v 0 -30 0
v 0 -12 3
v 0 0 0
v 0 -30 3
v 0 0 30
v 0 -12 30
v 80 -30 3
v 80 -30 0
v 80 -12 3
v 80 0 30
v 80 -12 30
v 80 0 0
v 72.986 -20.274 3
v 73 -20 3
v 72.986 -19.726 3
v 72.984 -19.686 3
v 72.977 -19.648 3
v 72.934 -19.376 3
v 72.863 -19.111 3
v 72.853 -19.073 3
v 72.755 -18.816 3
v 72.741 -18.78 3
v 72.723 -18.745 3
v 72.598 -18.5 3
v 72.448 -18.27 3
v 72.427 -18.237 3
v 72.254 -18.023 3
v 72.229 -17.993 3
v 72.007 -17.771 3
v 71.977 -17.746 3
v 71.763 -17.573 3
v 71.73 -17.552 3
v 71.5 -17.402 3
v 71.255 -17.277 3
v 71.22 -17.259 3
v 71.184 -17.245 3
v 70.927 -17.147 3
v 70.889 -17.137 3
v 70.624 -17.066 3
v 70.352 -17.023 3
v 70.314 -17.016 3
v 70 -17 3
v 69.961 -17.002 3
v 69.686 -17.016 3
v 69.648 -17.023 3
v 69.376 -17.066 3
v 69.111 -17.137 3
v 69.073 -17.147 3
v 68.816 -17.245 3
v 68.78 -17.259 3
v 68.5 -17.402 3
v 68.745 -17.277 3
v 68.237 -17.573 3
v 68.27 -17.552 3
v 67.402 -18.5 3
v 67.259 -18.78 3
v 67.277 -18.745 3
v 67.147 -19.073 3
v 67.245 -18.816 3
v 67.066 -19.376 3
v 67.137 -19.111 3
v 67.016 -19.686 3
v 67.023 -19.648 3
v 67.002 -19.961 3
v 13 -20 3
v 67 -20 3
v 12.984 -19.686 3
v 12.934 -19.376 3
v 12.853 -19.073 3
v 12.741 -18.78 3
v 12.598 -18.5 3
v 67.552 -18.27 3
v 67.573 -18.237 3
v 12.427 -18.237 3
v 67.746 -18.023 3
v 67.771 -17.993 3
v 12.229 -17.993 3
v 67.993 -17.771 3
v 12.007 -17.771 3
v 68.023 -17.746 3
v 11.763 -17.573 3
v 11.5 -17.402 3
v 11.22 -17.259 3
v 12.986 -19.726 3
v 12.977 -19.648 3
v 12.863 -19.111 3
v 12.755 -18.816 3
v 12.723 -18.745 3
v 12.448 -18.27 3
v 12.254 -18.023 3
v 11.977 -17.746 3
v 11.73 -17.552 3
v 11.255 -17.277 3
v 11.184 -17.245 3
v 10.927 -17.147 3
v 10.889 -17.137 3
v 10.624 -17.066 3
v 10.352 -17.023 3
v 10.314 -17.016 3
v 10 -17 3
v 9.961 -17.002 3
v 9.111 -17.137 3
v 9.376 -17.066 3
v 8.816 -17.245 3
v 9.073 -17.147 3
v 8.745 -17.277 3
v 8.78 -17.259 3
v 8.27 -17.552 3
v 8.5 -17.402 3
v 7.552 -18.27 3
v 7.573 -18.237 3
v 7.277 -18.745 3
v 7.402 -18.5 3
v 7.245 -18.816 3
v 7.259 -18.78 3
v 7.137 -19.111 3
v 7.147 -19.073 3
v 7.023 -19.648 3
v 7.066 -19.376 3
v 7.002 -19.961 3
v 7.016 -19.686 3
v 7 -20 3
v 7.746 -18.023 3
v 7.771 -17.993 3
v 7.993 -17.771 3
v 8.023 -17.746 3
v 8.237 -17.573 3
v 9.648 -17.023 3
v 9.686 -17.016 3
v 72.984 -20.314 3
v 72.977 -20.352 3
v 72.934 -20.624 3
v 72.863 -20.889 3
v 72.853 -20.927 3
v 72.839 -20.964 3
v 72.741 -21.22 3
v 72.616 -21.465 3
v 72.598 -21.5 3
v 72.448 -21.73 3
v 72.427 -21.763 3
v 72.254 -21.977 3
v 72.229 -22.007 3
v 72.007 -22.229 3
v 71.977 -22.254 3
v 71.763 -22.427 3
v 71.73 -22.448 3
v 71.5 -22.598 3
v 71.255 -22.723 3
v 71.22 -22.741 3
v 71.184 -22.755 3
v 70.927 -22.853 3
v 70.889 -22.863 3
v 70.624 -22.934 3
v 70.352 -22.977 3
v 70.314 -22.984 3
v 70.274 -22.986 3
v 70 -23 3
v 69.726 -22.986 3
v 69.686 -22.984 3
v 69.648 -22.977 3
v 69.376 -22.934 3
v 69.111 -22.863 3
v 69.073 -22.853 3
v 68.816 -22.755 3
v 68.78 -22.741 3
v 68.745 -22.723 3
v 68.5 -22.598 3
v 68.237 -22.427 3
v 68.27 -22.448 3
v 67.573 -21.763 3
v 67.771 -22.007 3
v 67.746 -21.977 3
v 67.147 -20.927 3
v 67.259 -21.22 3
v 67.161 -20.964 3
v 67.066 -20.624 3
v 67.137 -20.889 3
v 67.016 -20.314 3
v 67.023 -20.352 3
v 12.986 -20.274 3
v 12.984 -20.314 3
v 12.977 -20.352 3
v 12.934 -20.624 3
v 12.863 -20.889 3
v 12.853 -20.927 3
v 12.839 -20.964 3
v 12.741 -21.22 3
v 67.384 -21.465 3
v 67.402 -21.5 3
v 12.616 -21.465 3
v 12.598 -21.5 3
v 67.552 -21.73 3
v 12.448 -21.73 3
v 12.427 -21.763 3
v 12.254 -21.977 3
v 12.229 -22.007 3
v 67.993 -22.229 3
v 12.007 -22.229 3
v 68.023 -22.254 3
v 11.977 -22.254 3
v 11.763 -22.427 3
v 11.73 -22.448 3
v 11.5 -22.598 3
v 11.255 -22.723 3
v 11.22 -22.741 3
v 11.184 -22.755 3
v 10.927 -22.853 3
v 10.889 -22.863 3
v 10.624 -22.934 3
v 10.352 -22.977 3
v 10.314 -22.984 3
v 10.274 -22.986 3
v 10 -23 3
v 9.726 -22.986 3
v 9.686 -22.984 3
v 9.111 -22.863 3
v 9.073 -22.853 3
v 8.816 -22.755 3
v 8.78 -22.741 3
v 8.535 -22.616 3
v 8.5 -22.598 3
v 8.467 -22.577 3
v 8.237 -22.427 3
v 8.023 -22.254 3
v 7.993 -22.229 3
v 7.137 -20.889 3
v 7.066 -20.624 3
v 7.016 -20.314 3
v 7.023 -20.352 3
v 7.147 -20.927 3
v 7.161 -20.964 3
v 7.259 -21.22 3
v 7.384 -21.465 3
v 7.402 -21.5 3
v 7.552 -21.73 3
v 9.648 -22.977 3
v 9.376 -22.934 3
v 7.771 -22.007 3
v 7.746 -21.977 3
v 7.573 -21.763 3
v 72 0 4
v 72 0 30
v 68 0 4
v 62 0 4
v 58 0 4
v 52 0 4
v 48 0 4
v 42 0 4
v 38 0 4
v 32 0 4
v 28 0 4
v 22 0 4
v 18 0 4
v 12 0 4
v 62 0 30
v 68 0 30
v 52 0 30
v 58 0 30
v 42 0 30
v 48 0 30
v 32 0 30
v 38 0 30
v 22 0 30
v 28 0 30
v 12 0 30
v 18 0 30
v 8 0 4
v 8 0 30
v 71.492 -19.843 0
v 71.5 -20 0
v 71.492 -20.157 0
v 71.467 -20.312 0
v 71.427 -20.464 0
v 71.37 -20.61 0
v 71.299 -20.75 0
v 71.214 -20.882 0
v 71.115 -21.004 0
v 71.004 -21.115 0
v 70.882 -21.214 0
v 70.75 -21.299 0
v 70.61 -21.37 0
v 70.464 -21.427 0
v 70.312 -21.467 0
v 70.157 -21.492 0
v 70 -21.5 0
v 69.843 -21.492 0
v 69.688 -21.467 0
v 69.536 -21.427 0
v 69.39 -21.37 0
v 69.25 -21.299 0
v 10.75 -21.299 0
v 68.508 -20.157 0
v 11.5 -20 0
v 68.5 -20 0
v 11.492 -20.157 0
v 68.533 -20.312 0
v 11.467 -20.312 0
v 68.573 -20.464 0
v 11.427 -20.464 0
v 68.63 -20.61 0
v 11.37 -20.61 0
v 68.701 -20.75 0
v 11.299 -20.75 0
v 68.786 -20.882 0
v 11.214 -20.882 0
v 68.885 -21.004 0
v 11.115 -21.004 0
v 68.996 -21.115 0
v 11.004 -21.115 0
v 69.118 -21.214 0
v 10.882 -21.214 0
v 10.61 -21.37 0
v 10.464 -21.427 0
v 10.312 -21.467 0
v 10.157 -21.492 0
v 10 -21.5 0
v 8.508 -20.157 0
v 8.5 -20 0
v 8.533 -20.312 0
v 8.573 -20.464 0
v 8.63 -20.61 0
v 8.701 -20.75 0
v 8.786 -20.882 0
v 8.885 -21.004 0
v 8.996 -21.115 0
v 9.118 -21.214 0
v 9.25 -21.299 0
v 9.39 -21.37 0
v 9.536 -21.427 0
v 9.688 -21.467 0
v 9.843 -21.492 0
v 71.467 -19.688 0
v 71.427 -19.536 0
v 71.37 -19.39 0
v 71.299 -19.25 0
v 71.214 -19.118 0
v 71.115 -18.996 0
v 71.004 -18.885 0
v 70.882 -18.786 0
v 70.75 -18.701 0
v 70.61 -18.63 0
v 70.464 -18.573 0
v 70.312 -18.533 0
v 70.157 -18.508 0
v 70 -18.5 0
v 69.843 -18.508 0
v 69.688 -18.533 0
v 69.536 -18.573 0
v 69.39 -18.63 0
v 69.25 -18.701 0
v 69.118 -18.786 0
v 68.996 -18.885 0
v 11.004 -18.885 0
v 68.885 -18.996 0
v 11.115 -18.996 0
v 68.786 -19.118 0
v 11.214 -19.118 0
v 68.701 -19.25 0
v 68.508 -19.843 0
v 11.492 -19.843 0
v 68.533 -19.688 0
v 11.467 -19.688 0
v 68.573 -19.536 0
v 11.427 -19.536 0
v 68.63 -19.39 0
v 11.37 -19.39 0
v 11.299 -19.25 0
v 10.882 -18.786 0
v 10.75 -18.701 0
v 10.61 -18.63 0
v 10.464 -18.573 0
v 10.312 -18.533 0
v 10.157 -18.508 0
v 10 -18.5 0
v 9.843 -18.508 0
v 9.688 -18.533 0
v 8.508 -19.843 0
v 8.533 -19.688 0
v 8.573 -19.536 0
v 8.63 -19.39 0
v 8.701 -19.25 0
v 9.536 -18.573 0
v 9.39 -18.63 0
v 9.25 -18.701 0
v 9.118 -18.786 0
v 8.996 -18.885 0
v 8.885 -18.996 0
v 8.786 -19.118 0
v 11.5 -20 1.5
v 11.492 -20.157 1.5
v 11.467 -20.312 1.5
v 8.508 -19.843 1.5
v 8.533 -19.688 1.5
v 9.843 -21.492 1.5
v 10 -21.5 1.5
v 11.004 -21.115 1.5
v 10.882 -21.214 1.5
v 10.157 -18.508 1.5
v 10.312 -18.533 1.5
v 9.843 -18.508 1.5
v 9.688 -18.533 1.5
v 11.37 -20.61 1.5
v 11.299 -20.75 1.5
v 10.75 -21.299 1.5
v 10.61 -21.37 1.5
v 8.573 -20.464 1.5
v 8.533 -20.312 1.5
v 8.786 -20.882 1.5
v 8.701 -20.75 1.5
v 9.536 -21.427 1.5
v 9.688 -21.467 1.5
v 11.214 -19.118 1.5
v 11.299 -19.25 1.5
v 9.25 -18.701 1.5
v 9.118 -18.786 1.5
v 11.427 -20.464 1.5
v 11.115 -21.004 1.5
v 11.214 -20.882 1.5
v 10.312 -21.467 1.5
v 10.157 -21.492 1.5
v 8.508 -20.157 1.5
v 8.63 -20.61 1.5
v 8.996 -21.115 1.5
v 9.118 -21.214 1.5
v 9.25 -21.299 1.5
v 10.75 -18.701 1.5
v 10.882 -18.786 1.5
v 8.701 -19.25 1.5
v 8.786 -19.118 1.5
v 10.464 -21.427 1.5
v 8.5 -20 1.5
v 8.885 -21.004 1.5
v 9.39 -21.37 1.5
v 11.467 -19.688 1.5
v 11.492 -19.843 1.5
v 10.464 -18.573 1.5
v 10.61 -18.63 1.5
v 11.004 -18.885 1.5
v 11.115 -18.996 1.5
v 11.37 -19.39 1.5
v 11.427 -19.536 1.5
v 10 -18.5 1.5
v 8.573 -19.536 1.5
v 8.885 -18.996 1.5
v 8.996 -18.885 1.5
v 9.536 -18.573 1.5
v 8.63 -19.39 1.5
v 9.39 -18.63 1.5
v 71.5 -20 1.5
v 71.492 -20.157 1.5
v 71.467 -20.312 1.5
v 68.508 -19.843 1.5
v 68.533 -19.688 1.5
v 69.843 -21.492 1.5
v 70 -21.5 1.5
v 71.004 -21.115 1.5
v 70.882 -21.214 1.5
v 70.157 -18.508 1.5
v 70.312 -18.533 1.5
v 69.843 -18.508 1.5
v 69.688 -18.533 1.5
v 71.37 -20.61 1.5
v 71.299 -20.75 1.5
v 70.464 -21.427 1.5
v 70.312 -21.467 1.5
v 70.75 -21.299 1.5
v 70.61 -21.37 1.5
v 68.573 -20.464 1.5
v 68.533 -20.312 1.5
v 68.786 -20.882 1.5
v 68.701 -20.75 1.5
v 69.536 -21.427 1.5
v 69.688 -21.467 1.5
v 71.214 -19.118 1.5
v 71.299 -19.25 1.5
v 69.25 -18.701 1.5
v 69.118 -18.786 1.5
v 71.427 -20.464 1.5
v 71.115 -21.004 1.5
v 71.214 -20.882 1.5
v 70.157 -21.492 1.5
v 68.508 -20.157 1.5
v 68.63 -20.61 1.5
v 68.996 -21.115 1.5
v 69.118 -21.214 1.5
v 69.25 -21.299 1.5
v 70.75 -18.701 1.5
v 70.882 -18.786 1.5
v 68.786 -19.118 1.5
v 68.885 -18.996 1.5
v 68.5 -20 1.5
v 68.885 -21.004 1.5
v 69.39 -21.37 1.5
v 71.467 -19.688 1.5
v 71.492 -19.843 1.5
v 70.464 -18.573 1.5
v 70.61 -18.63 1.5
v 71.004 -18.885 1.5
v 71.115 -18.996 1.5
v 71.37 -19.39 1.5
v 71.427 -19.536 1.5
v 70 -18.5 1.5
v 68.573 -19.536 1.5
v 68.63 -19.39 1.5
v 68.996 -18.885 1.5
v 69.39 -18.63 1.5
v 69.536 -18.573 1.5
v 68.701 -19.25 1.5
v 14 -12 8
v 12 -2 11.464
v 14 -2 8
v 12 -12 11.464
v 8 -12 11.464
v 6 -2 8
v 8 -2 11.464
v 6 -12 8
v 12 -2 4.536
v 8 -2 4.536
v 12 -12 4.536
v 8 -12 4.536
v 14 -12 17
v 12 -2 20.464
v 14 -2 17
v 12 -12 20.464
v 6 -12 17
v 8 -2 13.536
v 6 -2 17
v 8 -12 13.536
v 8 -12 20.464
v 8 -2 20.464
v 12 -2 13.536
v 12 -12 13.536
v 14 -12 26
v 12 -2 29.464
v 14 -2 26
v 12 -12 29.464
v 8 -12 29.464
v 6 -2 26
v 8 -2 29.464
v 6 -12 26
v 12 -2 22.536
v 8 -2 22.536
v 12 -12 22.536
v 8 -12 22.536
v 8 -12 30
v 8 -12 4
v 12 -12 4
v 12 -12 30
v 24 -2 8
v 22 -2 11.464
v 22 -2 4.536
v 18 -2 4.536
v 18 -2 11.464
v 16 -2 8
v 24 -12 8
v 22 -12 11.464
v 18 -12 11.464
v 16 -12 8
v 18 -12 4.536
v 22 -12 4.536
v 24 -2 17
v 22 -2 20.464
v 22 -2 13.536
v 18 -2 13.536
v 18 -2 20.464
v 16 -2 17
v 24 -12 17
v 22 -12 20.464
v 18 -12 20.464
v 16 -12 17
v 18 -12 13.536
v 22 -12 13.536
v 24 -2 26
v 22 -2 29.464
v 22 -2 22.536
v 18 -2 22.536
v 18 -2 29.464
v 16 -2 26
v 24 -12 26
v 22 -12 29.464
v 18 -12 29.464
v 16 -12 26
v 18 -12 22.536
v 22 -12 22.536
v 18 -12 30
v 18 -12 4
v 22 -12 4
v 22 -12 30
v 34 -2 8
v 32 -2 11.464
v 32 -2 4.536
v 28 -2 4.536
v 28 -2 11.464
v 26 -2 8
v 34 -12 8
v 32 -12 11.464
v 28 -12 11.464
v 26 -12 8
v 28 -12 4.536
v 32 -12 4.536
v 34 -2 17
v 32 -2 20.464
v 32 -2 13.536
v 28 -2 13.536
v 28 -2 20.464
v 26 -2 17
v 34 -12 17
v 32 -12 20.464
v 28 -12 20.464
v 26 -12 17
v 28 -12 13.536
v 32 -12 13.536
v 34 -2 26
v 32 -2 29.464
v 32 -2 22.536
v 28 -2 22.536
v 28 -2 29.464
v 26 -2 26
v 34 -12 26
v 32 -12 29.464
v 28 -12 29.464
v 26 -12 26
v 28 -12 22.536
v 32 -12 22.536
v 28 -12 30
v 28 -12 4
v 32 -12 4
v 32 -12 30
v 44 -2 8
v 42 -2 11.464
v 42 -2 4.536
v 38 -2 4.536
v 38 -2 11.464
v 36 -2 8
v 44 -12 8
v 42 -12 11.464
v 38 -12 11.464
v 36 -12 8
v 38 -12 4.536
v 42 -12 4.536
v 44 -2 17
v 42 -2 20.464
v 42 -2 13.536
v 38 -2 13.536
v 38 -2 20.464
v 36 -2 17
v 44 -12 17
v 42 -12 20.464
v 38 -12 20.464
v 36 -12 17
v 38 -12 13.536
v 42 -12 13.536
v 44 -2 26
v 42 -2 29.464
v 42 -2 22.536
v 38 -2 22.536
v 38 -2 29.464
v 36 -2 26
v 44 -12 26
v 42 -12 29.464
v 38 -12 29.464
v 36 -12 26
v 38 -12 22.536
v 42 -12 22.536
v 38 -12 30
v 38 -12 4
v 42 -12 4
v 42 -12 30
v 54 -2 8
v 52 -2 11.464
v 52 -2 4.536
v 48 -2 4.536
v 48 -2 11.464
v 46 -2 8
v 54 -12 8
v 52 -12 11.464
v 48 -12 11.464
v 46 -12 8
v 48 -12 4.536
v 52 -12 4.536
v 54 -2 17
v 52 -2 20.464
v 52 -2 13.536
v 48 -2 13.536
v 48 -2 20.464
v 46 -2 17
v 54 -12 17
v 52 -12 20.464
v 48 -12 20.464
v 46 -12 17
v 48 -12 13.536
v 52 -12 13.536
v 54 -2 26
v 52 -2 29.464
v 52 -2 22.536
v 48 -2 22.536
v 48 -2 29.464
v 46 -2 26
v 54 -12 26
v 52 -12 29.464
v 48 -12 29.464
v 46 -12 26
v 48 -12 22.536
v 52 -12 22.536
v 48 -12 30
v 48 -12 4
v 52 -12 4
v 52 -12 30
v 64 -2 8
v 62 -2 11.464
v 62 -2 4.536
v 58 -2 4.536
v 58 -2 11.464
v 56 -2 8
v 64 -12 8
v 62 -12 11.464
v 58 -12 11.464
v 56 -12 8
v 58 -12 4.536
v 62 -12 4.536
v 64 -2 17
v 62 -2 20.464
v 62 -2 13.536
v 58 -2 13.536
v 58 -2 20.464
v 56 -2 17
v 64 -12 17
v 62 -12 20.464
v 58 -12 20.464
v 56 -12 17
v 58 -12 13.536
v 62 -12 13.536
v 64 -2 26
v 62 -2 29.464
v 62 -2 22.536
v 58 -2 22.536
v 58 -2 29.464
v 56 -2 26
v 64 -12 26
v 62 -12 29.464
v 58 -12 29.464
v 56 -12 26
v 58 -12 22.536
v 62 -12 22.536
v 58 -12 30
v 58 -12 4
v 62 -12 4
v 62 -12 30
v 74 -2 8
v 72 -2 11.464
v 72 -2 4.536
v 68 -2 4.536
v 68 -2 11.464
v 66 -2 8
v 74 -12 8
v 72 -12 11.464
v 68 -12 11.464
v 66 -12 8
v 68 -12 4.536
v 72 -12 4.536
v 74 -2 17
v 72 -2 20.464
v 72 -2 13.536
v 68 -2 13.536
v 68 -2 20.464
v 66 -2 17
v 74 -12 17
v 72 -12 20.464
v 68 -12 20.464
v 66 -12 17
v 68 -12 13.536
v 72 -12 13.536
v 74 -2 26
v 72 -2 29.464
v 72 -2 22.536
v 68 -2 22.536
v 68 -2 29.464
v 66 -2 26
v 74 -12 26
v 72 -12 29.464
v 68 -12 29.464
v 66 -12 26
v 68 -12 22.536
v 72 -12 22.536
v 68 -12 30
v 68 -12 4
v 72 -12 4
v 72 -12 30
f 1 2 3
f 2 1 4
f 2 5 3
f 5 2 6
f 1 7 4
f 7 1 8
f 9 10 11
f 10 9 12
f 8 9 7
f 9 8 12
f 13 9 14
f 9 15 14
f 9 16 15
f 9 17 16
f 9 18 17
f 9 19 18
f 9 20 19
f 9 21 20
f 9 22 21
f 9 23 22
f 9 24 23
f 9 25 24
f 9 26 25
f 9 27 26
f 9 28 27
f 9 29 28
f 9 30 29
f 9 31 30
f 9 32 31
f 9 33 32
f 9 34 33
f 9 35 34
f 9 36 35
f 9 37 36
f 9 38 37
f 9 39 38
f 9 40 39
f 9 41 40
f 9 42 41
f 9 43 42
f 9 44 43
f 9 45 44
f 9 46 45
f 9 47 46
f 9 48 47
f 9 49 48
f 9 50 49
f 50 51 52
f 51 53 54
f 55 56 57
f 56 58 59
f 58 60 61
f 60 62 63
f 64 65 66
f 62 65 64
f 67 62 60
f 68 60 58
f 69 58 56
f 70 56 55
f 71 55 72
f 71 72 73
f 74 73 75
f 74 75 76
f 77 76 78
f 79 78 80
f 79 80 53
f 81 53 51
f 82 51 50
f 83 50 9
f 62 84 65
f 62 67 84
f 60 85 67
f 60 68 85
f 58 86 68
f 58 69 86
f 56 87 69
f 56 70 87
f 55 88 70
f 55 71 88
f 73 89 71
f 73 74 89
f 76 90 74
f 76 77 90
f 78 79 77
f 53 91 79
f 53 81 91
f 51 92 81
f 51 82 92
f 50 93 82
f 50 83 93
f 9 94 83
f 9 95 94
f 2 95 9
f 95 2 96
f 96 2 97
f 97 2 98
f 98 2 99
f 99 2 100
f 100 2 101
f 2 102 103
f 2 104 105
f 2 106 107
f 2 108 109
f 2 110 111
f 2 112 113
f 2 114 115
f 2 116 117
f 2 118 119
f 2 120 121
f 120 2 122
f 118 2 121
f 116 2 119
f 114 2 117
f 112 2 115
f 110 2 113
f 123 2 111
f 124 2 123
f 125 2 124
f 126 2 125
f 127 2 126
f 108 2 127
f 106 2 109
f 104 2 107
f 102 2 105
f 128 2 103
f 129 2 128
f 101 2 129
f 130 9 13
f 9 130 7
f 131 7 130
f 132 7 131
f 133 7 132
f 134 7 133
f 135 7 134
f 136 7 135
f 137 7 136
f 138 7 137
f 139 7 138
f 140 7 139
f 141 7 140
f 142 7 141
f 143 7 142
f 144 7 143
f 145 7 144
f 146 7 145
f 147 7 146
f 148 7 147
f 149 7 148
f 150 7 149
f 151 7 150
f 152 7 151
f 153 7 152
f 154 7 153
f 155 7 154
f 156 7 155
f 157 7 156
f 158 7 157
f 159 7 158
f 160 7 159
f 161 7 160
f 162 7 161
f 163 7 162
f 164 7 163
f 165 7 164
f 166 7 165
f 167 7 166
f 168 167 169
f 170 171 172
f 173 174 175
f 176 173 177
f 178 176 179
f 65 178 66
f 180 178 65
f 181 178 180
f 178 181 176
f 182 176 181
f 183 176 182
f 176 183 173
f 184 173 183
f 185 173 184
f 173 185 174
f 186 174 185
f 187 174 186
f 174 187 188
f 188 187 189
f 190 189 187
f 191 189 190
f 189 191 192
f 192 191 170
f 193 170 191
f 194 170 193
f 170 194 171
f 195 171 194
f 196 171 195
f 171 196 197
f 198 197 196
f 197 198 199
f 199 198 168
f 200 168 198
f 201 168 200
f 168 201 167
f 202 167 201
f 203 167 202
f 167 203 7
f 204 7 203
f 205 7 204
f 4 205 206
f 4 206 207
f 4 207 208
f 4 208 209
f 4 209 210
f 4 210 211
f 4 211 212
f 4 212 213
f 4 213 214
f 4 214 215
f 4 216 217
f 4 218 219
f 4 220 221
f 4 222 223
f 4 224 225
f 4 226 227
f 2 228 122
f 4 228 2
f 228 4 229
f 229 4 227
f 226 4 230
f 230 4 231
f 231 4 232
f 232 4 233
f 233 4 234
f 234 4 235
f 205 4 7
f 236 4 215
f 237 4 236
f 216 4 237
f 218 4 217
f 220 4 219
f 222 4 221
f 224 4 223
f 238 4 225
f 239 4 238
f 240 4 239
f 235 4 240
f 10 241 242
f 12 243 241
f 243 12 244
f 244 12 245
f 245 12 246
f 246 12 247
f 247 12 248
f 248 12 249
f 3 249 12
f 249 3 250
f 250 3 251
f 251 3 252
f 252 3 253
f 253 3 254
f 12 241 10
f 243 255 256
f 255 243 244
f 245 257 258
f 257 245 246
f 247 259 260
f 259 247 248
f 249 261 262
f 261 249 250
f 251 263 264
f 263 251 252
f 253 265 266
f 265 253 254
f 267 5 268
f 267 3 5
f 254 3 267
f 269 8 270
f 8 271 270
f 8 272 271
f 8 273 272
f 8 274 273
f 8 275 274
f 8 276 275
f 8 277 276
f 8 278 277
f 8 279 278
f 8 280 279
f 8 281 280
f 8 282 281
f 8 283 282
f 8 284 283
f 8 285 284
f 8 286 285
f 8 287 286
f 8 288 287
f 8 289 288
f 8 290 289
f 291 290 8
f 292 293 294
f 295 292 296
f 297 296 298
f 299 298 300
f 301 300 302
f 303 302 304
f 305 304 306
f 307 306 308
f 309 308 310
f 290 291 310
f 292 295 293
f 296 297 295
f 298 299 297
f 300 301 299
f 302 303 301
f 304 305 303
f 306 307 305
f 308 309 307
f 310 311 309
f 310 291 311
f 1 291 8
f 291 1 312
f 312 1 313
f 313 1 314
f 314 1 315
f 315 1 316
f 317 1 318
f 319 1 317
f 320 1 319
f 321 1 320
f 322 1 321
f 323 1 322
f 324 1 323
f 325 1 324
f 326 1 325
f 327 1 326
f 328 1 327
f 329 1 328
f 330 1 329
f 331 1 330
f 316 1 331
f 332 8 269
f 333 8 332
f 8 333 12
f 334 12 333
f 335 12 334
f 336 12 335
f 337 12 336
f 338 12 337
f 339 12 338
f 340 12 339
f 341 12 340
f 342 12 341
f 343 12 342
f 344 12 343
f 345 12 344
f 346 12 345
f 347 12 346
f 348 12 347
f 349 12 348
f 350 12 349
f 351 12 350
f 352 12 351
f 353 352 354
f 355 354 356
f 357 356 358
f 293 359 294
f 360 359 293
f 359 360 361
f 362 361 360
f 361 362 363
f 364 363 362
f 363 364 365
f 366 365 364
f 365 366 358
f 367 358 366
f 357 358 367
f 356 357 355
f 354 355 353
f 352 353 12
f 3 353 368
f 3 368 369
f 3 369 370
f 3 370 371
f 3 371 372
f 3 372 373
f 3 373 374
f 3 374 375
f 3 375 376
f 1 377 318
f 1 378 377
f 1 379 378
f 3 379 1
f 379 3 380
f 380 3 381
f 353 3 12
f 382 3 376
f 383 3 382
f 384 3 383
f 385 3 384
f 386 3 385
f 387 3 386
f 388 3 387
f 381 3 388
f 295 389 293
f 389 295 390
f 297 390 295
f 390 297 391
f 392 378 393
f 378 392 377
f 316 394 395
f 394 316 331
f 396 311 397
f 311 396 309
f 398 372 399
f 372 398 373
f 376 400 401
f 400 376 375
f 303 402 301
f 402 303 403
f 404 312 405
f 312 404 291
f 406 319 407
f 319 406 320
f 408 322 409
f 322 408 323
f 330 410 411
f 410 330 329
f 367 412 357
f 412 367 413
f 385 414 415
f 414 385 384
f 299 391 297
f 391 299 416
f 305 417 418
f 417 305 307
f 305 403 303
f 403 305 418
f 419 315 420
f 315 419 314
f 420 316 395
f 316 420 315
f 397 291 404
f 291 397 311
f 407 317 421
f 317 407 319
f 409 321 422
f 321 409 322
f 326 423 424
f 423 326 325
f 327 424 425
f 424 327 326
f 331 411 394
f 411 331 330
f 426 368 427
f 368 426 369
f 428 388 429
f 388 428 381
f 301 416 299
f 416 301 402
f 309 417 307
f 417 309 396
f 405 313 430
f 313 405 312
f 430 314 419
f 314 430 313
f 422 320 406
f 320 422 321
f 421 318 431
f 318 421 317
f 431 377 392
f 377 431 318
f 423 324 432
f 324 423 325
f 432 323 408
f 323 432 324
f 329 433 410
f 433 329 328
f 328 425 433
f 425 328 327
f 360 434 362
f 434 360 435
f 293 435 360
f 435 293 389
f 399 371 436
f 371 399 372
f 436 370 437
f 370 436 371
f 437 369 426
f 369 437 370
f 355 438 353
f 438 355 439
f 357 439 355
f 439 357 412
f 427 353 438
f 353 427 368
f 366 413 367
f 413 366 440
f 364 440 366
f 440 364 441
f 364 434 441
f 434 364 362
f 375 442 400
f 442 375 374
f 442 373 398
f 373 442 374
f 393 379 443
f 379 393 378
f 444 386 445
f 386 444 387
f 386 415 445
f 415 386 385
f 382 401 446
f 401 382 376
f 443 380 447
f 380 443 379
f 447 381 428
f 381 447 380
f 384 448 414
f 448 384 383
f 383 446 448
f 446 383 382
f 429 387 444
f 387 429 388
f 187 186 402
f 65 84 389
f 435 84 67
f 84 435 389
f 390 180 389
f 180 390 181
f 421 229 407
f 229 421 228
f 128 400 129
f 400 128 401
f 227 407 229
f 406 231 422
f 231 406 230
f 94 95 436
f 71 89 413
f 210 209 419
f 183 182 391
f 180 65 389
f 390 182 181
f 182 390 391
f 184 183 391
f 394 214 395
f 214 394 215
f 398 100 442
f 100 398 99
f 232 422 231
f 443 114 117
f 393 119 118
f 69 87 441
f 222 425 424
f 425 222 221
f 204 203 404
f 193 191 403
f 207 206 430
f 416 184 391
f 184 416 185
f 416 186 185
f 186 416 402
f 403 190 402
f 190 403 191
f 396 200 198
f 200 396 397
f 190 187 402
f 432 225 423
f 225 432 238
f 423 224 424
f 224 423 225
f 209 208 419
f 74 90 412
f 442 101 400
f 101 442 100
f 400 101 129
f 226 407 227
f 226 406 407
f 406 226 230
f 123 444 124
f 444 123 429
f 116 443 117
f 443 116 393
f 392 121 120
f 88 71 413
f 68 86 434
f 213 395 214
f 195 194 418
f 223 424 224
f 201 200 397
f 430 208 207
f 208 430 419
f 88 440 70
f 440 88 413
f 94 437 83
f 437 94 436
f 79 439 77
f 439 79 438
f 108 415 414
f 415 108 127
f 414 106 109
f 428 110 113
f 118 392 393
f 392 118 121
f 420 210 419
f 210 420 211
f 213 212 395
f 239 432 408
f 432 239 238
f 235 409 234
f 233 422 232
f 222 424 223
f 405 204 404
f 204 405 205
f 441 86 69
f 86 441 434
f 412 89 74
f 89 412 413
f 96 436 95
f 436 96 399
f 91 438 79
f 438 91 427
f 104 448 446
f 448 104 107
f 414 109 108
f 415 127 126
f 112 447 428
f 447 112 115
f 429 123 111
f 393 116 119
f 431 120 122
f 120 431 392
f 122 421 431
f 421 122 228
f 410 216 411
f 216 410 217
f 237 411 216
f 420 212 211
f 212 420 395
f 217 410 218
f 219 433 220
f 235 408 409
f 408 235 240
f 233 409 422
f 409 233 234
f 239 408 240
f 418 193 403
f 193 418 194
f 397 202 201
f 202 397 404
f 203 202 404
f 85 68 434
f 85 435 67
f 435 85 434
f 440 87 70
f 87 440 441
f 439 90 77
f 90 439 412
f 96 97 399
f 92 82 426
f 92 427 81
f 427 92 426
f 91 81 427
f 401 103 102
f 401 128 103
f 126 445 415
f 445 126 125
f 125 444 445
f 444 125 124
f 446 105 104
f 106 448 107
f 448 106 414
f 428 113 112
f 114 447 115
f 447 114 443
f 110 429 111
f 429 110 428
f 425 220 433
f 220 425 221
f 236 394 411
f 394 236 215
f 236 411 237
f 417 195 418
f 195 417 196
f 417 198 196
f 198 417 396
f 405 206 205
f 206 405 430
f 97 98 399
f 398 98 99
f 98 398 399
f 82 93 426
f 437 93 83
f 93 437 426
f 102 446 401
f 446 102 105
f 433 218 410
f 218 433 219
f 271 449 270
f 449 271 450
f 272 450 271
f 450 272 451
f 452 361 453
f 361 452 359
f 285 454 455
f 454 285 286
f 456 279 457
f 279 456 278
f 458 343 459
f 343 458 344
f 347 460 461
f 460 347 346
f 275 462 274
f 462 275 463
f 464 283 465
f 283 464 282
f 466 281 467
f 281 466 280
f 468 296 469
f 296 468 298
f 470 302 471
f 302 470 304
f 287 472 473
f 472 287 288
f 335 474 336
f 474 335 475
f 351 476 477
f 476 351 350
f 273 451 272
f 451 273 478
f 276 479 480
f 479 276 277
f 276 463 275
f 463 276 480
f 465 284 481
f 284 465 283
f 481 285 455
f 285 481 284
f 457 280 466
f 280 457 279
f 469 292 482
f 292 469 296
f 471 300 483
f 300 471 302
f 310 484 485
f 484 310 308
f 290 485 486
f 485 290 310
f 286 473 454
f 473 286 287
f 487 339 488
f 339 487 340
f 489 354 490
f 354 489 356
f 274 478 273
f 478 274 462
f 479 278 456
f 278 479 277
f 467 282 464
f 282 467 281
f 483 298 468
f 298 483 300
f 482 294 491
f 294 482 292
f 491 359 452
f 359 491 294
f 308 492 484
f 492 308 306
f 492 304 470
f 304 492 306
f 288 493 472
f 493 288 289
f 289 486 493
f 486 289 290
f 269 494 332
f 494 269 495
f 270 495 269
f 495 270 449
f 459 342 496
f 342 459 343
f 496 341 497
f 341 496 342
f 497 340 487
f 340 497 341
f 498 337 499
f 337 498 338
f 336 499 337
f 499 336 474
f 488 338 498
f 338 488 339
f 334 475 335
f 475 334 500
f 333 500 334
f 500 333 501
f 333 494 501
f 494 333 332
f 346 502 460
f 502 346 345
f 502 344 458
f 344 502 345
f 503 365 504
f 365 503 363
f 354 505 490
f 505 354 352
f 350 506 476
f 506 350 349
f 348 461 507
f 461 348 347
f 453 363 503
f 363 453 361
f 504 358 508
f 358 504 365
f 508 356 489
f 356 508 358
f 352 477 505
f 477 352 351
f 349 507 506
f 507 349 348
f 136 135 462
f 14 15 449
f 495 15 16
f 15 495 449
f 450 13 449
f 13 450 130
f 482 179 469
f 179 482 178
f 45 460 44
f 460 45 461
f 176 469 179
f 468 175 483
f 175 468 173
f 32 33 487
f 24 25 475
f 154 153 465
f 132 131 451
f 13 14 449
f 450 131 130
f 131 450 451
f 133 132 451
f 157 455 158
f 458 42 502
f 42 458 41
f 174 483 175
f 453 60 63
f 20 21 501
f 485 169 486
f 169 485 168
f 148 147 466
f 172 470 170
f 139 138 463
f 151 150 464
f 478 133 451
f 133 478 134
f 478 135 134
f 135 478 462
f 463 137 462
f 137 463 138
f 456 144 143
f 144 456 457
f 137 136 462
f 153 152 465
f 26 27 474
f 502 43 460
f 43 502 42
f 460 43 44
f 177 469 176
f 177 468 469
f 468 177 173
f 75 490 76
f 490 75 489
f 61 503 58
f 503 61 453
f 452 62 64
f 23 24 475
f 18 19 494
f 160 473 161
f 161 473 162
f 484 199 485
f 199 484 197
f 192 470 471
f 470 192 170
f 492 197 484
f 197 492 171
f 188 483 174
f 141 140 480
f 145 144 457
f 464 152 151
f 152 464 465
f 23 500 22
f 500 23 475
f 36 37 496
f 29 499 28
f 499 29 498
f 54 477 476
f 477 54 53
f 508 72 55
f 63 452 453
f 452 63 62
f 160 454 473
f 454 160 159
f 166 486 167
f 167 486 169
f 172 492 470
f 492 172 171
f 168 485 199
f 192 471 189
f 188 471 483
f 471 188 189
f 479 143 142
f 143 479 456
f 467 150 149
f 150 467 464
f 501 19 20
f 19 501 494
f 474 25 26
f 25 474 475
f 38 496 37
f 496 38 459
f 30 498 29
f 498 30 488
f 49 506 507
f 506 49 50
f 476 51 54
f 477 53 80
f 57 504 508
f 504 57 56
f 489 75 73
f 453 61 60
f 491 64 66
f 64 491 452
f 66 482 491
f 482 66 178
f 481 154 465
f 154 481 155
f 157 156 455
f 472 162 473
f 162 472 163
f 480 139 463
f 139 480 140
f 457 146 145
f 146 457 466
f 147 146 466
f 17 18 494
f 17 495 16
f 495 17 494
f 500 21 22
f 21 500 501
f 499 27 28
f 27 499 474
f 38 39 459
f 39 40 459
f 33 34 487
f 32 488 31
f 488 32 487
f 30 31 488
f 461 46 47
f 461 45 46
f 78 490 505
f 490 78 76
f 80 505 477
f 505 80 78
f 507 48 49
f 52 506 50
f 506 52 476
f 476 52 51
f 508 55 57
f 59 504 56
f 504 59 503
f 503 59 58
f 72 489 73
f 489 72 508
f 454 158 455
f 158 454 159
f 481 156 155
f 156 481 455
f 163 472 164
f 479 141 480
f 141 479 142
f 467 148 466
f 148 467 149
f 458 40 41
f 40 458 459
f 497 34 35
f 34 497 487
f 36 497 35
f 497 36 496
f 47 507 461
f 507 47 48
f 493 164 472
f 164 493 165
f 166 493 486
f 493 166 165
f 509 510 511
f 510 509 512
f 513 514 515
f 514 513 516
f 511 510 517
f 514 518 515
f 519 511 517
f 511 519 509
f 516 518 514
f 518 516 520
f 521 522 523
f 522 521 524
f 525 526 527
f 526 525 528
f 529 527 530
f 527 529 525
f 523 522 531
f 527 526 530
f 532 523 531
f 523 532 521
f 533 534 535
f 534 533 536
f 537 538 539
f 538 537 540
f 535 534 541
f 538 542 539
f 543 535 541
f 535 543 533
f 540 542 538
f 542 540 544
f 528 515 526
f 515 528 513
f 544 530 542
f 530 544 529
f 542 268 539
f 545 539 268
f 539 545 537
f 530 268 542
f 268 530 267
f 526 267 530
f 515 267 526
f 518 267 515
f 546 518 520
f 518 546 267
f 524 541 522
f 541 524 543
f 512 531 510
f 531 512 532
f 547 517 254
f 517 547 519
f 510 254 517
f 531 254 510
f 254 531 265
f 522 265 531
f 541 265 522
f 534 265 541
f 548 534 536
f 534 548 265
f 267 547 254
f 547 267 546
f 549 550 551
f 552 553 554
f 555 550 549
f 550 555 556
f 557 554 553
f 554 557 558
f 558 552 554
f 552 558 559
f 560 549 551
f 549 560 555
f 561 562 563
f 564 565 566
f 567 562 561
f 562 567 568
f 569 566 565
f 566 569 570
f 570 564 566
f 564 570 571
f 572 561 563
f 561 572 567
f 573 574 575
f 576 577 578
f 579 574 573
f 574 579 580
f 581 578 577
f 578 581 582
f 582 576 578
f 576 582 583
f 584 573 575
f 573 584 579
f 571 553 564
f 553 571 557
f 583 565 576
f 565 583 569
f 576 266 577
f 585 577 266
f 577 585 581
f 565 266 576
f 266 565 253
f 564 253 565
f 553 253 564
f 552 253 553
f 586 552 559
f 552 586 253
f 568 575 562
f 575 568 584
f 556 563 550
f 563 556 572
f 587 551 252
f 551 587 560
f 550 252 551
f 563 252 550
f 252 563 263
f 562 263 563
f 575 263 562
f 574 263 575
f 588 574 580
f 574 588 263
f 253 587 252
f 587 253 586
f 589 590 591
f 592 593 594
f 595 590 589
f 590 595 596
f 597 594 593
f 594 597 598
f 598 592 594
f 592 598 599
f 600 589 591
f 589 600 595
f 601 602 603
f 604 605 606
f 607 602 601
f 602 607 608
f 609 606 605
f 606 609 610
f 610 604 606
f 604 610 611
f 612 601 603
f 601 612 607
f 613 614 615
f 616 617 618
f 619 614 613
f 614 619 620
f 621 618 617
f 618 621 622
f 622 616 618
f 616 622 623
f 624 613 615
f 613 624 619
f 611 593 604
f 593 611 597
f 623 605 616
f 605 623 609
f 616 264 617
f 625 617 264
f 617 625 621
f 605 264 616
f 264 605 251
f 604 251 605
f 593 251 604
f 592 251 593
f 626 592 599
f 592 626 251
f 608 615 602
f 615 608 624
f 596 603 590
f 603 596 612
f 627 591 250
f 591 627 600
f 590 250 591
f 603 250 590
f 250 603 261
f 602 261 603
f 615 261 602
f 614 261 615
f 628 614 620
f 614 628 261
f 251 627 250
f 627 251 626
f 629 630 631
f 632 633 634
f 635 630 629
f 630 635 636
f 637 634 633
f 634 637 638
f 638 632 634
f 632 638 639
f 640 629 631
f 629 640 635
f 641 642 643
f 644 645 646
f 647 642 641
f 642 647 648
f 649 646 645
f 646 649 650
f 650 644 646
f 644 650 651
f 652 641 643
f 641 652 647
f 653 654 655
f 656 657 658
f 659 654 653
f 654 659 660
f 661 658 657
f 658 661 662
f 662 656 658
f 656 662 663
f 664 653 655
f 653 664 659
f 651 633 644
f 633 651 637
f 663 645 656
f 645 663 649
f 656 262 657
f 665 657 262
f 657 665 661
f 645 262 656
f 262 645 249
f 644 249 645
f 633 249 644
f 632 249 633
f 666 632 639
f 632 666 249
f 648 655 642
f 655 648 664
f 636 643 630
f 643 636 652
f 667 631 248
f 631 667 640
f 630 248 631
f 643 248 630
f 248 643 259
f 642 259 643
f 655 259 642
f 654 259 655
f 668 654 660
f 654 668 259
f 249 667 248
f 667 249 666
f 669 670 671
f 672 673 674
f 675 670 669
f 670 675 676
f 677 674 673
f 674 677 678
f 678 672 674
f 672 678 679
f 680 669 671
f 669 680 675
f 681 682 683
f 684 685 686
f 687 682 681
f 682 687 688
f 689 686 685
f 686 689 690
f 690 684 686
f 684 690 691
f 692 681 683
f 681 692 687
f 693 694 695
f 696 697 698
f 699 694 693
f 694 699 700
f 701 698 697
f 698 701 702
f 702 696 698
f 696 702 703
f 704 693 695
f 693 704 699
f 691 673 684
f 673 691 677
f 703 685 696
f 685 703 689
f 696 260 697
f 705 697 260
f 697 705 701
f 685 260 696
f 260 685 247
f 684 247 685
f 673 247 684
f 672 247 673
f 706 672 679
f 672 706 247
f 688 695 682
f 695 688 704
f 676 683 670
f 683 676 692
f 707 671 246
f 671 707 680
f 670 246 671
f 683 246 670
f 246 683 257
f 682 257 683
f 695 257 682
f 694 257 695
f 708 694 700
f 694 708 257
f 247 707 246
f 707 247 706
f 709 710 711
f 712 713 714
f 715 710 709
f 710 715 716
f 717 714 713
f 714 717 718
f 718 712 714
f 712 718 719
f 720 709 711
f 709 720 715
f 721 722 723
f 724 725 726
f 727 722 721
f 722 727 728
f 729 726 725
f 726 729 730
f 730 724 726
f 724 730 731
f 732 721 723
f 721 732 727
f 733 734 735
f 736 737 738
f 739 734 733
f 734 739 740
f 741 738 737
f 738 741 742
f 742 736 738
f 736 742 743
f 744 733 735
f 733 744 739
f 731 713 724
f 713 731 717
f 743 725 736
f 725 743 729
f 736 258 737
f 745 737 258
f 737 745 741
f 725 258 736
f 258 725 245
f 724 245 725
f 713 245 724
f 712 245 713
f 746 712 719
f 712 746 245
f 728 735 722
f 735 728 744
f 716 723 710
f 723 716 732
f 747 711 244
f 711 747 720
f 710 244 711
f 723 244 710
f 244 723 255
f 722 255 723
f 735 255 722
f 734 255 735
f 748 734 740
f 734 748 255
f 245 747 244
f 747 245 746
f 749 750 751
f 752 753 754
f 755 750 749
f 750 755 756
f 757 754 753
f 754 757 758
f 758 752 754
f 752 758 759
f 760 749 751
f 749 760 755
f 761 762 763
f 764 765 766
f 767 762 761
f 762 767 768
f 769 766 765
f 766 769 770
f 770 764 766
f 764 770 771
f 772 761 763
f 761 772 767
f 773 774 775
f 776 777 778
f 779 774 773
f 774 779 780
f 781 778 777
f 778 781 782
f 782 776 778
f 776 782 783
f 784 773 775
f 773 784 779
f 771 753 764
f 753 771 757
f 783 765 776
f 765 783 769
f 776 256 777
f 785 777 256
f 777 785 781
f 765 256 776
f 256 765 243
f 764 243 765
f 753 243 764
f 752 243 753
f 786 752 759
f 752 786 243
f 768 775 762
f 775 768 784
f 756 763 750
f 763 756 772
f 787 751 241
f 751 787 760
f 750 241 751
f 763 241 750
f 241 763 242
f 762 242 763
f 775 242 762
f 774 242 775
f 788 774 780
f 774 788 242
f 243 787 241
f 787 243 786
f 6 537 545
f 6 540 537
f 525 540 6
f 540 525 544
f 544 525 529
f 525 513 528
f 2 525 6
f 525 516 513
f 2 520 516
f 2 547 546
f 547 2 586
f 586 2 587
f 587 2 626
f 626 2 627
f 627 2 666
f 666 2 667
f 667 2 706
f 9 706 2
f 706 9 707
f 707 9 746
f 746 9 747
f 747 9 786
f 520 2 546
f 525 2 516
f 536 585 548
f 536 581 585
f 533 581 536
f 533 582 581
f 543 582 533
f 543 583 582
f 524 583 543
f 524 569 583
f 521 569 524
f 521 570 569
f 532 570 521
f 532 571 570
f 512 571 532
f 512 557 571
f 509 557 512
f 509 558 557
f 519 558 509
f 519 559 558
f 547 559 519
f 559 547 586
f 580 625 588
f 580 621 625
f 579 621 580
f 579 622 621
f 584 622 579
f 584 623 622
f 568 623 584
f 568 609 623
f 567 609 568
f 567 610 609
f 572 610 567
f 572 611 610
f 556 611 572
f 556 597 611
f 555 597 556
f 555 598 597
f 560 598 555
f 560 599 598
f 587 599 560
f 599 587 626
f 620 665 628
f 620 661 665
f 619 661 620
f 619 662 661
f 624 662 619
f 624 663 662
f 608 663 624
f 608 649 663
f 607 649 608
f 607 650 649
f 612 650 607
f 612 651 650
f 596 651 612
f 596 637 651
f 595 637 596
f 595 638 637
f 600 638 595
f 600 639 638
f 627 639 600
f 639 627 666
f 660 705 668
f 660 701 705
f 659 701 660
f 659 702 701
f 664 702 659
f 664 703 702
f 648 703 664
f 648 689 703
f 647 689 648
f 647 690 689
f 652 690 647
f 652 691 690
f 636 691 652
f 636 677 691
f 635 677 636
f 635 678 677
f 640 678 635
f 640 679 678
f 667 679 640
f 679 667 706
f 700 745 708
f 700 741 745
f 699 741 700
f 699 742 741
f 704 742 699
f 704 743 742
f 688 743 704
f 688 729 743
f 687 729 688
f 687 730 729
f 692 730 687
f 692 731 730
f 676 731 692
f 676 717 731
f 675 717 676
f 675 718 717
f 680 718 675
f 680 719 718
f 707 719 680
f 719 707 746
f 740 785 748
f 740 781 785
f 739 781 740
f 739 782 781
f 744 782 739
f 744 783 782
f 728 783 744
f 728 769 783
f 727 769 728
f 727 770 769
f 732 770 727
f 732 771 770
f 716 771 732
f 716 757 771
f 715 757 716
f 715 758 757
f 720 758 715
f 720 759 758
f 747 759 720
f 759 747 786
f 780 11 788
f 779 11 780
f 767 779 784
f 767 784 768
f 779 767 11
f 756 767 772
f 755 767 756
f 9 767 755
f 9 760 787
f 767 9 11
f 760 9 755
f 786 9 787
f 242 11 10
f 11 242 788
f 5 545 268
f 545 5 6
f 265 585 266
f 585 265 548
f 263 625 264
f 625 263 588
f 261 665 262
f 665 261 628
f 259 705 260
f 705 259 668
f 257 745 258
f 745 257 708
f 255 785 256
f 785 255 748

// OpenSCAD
$fn = 60;

rotate([90, 0, 0]) {
 difference () {
   cube([80, 3, 30]);
   translate([10, 4, 20]) rotate([90, 0, 0]) cylinder(5, r=1.5);
   translate([10, 1.5, 20]) rotate([-90, 0, 0]) cylinder(2, r1=1.5, r2=3.5);
   translate([70, 4, 20]) rotate([90, 0, 0]) cylinder(5, r=1.5);
   translate([70, 1.5, 20]) rotate([-90, 0, 0]) cylinder(2, r1=1.5, r2=3.5);
 

 
   }
 
difference () {
  translate([0, 0, 0]) cube([80, 30, 12]);
  offset = 10;
  
  for (i = [0:6]) {
translate([offset + 10*i, 8, 2])  cylinder(11, r=4, $fn=6);
translate([offset + 10*i, 17, 2])  cylinder(11, r=4, $fn=6);
translate([offset + 10*i, 26, 2])  cylinder(11, r=4, $fn=6);
translate([offset-2 + 10*i, 4, -1]) cube([4, 27, 14]);
  }


}




}
